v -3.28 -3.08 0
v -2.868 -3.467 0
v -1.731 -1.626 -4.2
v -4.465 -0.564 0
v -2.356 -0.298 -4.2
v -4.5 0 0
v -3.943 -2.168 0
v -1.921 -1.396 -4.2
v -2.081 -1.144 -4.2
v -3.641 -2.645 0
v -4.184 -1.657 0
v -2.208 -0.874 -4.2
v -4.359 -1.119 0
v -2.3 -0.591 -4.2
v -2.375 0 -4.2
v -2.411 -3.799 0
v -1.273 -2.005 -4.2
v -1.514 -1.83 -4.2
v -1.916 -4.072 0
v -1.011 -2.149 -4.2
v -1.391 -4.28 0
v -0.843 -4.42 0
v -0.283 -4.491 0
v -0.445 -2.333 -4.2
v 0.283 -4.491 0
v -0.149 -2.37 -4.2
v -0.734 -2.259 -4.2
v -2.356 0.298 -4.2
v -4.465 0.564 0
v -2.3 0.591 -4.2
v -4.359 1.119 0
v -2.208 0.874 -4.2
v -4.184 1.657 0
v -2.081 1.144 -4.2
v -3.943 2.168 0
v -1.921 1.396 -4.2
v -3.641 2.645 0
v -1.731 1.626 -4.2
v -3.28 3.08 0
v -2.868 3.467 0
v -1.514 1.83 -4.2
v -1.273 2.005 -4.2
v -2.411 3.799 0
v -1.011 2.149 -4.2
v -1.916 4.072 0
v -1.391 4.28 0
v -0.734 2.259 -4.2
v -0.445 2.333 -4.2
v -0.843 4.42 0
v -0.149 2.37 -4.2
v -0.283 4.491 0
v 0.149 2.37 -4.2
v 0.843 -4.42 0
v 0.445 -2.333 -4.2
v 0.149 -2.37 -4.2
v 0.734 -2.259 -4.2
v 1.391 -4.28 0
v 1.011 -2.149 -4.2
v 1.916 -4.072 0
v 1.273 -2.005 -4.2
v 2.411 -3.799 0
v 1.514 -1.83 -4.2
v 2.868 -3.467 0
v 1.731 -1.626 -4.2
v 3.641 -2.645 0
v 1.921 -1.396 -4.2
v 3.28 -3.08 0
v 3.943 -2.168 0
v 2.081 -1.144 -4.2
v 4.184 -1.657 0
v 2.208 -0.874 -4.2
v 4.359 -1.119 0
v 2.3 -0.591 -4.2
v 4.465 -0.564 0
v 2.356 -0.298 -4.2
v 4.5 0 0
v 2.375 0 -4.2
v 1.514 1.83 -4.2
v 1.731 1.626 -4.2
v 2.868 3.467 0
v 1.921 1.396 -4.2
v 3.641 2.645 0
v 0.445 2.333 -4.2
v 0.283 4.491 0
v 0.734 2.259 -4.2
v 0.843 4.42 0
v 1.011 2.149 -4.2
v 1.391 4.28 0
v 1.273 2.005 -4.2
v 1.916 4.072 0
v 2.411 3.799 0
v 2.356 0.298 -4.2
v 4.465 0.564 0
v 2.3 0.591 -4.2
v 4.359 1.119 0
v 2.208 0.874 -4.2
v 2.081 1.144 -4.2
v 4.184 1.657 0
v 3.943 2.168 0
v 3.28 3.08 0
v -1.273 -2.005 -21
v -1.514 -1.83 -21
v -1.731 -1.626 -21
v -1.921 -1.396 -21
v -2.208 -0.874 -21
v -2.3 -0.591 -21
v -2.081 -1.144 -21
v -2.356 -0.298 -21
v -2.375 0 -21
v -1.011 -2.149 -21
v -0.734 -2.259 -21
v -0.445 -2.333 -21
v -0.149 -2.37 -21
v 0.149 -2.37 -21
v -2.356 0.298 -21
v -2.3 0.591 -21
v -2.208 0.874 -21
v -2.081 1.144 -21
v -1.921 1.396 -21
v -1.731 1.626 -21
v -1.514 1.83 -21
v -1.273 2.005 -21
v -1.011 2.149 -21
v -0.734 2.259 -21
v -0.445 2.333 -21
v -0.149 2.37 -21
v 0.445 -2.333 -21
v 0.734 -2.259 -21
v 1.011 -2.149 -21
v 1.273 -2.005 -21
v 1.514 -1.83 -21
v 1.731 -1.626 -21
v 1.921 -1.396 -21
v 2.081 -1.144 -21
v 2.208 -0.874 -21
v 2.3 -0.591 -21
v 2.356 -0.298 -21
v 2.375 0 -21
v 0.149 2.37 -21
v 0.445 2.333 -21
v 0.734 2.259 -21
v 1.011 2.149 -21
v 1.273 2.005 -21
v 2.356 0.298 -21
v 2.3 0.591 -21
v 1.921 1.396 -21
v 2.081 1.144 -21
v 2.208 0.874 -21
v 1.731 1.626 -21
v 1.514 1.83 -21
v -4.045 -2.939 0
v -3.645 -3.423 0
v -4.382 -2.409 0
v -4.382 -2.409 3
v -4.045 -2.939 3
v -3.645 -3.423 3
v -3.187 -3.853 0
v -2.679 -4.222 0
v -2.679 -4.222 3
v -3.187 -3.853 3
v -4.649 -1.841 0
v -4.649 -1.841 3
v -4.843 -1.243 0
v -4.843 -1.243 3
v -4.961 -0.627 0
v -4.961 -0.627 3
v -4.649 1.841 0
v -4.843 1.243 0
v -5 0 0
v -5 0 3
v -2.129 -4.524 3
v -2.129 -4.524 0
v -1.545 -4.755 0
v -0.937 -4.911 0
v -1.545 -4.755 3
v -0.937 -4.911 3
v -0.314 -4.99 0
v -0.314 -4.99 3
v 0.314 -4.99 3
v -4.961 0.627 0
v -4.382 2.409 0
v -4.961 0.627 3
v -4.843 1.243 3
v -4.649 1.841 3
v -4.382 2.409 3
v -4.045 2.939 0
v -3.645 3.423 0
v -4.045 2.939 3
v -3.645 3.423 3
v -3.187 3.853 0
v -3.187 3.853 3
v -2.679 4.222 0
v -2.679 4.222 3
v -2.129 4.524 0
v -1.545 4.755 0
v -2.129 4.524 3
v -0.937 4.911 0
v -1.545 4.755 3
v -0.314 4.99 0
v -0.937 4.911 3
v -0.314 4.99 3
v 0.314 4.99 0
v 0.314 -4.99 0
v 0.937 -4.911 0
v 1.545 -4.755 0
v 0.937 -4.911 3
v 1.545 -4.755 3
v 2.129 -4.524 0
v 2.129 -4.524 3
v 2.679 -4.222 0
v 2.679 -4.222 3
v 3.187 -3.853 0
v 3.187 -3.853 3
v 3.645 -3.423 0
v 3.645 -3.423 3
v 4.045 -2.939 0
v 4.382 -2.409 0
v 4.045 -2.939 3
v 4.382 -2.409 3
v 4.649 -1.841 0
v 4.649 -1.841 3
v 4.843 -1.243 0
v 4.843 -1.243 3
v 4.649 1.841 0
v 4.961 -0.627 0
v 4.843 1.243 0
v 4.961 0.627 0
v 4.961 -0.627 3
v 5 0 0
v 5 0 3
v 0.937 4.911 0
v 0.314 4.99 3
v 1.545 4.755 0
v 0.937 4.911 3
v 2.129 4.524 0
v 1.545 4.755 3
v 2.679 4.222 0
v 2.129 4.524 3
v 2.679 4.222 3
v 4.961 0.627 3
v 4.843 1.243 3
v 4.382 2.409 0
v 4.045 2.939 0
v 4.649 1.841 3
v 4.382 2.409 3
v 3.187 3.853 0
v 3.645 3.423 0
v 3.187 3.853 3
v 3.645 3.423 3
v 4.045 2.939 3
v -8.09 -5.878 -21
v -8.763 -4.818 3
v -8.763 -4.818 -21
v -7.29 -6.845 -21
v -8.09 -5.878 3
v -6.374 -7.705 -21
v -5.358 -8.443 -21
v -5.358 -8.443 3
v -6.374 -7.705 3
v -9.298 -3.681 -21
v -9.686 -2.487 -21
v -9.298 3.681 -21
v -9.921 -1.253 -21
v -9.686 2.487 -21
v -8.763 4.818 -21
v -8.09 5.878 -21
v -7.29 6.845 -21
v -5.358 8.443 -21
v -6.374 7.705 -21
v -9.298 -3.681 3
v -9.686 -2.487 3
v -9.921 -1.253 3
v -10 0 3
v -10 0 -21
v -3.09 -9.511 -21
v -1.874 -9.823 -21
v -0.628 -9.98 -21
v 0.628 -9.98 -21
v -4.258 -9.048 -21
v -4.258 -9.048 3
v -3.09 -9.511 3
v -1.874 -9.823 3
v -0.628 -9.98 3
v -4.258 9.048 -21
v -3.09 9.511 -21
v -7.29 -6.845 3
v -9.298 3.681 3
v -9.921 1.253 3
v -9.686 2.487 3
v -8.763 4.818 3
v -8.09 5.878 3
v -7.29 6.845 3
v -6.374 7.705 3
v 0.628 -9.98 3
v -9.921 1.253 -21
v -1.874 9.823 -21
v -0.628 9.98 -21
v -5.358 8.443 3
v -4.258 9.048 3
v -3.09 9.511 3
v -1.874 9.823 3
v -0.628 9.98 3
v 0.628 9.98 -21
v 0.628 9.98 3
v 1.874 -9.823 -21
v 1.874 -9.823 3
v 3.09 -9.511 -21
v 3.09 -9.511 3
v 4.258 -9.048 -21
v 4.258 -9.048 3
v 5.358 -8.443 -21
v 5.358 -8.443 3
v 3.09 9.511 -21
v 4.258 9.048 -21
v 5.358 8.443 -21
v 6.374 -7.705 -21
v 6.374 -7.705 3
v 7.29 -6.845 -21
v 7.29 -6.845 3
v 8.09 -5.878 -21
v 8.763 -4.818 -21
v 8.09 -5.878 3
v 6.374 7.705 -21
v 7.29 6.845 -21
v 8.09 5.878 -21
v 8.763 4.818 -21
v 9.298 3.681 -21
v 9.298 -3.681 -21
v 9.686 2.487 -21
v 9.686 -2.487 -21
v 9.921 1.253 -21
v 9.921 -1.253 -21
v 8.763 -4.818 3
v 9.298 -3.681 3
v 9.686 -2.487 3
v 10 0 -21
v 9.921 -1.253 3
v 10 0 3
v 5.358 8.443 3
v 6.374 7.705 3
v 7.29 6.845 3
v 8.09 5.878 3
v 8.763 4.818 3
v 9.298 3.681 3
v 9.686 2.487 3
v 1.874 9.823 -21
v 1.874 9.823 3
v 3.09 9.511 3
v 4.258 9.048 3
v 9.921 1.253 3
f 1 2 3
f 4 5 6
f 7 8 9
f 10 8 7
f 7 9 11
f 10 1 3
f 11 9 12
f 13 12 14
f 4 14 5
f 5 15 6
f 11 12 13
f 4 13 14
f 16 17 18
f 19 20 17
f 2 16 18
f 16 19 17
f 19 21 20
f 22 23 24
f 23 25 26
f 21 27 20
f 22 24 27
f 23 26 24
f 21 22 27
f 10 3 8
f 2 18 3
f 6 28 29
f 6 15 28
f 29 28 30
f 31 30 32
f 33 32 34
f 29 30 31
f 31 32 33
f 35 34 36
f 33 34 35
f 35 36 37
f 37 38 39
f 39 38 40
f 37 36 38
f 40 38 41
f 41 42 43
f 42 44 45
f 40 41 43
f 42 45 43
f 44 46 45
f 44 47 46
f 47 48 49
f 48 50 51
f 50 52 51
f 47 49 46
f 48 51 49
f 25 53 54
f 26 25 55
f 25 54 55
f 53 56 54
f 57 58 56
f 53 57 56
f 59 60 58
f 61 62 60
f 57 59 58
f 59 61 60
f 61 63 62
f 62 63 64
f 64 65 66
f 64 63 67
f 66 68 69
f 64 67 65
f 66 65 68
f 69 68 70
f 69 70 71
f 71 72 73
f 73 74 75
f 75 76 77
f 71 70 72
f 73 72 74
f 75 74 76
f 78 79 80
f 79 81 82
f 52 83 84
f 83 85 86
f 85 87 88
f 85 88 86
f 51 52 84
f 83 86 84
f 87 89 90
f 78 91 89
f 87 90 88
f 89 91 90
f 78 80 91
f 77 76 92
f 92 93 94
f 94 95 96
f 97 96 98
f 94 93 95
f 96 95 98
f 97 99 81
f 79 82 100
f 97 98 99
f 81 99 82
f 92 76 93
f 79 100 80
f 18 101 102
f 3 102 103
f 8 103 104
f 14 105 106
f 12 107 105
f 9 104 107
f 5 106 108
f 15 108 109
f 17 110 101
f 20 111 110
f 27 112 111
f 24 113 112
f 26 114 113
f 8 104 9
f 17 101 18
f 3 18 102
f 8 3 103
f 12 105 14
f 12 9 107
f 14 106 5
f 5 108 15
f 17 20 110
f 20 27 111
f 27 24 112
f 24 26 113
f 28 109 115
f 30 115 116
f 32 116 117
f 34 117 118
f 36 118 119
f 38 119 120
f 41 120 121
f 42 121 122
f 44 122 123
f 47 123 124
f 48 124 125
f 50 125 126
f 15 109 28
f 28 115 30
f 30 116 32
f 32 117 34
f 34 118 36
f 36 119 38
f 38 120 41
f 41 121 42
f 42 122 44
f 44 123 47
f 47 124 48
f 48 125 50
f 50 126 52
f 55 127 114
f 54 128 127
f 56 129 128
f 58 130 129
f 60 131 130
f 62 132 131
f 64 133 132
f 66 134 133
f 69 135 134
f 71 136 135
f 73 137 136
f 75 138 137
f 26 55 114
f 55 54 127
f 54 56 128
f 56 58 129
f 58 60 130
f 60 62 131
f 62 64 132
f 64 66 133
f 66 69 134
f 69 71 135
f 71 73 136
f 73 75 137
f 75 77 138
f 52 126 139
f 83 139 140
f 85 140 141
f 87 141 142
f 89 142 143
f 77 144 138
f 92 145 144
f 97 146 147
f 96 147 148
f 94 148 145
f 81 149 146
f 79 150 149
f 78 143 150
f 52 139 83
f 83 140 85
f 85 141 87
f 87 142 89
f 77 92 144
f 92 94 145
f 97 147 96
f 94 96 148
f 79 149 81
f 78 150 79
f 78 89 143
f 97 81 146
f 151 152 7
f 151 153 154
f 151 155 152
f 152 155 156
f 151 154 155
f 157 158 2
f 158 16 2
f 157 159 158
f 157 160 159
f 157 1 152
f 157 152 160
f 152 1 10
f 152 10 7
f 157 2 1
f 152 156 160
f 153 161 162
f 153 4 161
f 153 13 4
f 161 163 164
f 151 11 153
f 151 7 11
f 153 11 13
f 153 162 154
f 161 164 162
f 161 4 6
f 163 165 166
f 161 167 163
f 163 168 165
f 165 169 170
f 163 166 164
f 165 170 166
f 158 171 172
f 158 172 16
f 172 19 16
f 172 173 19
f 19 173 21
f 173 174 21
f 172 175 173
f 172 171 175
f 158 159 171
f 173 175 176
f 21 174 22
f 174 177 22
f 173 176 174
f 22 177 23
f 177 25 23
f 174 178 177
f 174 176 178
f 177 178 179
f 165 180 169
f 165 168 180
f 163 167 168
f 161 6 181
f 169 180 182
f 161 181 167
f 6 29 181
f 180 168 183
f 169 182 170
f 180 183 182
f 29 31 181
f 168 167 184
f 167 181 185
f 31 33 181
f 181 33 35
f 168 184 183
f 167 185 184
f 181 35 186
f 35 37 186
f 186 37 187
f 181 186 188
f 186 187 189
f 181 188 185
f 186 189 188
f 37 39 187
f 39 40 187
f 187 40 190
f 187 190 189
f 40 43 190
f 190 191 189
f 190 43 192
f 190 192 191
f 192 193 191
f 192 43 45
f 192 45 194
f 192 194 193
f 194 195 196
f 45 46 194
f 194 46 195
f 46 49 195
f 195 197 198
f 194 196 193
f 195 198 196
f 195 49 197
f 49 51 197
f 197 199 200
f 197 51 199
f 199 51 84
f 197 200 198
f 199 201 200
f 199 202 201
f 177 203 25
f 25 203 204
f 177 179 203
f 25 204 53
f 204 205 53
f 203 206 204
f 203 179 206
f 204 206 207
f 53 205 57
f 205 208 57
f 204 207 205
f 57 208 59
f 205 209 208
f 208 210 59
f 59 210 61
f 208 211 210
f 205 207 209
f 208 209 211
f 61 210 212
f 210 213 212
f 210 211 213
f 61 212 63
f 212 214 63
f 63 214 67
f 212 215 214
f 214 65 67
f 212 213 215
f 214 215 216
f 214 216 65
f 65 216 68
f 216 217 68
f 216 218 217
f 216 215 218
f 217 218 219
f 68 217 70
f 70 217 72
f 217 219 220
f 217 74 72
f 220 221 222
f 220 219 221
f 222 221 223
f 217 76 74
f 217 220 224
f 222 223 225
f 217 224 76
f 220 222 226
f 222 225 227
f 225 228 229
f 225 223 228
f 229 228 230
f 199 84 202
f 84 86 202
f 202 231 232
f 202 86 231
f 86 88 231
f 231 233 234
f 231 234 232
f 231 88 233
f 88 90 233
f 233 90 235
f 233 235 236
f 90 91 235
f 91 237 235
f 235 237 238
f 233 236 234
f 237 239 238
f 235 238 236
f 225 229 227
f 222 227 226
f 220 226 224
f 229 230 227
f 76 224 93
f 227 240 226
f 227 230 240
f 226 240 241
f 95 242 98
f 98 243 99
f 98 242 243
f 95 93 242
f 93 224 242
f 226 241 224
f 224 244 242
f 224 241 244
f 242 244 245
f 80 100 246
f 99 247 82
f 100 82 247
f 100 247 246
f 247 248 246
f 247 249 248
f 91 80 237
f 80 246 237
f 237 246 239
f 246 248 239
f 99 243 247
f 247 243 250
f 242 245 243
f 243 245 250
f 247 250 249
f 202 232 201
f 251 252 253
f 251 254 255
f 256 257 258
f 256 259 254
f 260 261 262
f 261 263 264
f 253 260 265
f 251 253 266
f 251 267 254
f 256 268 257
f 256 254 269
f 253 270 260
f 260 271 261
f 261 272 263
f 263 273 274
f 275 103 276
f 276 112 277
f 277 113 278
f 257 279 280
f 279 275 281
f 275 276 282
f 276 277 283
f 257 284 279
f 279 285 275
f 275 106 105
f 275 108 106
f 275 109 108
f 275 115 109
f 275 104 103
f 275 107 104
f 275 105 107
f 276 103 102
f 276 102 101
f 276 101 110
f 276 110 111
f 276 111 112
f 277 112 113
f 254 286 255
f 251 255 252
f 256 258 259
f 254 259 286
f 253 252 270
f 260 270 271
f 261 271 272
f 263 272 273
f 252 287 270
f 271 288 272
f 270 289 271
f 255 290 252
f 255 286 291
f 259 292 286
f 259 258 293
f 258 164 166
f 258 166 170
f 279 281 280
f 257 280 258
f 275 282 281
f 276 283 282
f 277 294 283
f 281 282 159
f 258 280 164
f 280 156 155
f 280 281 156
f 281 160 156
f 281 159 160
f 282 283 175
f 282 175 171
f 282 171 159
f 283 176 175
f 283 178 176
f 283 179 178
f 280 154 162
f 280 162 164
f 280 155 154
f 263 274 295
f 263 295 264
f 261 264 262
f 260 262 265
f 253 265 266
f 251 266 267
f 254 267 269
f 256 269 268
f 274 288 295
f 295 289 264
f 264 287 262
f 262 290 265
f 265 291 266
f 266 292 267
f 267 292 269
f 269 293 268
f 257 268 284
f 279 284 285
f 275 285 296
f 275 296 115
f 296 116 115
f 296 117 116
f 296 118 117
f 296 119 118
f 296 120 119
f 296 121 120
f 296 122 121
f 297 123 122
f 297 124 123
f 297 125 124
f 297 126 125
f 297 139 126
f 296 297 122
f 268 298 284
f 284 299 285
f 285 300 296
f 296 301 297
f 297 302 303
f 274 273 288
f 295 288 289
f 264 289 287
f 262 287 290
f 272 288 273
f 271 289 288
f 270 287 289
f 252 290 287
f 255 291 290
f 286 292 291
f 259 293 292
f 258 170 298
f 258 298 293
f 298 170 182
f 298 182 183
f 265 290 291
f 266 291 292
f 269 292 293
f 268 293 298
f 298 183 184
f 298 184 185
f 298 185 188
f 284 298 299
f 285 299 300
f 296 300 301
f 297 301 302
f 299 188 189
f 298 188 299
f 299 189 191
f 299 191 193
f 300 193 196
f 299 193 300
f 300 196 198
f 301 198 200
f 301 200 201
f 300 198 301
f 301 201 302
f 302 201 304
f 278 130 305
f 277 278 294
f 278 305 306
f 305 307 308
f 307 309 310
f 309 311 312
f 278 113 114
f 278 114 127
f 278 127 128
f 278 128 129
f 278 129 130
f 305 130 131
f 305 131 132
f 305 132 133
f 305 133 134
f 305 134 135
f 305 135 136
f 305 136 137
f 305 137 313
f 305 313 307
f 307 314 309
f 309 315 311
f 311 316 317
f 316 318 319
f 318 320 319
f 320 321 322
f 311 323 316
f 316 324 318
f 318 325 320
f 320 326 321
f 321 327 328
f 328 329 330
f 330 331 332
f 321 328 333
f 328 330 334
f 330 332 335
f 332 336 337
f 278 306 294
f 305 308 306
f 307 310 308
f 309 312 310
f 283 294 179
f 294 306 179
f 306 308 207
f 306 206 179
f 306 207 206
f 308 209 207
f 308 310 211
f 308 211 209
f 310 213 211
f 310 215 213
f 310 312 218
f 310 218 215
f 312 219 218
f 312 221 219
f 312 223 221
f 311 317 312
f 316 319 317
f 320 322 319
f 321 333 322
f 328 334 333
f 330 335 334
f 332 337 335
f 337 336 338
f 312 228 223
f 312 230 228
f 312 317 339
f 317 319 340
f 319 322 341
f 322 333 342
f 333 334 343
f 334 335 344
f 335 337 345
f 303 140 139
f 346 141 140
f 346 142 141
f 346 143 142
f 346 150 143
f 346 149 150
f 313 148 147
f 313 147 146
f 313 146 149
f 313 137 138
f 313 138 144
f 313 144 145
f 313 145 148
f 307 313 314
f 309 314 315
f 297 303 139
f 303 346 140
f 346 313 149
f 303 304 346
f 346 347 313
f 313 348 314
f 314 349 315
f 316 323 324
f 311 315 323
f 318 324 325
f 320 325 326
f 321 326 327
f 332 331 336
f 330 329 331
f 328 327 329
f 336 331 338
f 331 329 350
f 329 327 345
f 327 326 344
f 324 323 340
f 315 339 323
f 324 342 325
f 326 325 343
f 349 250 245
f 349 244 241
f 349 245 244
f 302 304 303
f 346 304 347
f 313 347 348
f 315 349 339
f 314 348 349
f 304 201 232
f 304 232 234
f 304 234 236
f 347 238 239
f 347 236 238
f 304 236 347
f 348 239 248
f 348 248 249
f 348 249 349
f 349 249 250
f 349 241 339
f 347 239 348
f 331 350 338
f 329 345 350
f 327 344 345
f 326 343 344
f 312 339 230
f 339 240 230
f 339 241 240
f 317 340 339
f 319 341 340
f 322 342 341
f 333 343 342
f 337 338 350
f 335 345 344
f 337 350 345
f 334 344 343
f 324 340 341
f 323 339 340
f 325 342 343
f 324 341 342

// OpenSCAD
$fn = 50;

difference() {
	union() {
		translate(v = [0, 0, -21.0]) {
			cylinder(h = 24, r = 10.0);
		}
	}
	union() {
		translate(v = [0, 0, 0]) {
			rotate(a = [0, 0, 0]) {
				difference() {
					union() {
						translate(v = [0, 0, -24.0]) {
							cylinder(h = 24, r = 2.25);
						}
						translate(v = [0, 0, -4.2]) {
							cylinder(h = 4.2, r1 = 2.375, r2 = 4.5);
						}
						translate(v = [0, 0, -24.0]) {
							cylinder(h = 24, r = 2.375);
						}
						translate(v = [0, 0, -24.0]) {
							cylinder(h = 24, r = 2.25);
						}
					}
					union();
				}
			}
		}
		#cylinder(h = 3, r = 5.0);
	}
}
